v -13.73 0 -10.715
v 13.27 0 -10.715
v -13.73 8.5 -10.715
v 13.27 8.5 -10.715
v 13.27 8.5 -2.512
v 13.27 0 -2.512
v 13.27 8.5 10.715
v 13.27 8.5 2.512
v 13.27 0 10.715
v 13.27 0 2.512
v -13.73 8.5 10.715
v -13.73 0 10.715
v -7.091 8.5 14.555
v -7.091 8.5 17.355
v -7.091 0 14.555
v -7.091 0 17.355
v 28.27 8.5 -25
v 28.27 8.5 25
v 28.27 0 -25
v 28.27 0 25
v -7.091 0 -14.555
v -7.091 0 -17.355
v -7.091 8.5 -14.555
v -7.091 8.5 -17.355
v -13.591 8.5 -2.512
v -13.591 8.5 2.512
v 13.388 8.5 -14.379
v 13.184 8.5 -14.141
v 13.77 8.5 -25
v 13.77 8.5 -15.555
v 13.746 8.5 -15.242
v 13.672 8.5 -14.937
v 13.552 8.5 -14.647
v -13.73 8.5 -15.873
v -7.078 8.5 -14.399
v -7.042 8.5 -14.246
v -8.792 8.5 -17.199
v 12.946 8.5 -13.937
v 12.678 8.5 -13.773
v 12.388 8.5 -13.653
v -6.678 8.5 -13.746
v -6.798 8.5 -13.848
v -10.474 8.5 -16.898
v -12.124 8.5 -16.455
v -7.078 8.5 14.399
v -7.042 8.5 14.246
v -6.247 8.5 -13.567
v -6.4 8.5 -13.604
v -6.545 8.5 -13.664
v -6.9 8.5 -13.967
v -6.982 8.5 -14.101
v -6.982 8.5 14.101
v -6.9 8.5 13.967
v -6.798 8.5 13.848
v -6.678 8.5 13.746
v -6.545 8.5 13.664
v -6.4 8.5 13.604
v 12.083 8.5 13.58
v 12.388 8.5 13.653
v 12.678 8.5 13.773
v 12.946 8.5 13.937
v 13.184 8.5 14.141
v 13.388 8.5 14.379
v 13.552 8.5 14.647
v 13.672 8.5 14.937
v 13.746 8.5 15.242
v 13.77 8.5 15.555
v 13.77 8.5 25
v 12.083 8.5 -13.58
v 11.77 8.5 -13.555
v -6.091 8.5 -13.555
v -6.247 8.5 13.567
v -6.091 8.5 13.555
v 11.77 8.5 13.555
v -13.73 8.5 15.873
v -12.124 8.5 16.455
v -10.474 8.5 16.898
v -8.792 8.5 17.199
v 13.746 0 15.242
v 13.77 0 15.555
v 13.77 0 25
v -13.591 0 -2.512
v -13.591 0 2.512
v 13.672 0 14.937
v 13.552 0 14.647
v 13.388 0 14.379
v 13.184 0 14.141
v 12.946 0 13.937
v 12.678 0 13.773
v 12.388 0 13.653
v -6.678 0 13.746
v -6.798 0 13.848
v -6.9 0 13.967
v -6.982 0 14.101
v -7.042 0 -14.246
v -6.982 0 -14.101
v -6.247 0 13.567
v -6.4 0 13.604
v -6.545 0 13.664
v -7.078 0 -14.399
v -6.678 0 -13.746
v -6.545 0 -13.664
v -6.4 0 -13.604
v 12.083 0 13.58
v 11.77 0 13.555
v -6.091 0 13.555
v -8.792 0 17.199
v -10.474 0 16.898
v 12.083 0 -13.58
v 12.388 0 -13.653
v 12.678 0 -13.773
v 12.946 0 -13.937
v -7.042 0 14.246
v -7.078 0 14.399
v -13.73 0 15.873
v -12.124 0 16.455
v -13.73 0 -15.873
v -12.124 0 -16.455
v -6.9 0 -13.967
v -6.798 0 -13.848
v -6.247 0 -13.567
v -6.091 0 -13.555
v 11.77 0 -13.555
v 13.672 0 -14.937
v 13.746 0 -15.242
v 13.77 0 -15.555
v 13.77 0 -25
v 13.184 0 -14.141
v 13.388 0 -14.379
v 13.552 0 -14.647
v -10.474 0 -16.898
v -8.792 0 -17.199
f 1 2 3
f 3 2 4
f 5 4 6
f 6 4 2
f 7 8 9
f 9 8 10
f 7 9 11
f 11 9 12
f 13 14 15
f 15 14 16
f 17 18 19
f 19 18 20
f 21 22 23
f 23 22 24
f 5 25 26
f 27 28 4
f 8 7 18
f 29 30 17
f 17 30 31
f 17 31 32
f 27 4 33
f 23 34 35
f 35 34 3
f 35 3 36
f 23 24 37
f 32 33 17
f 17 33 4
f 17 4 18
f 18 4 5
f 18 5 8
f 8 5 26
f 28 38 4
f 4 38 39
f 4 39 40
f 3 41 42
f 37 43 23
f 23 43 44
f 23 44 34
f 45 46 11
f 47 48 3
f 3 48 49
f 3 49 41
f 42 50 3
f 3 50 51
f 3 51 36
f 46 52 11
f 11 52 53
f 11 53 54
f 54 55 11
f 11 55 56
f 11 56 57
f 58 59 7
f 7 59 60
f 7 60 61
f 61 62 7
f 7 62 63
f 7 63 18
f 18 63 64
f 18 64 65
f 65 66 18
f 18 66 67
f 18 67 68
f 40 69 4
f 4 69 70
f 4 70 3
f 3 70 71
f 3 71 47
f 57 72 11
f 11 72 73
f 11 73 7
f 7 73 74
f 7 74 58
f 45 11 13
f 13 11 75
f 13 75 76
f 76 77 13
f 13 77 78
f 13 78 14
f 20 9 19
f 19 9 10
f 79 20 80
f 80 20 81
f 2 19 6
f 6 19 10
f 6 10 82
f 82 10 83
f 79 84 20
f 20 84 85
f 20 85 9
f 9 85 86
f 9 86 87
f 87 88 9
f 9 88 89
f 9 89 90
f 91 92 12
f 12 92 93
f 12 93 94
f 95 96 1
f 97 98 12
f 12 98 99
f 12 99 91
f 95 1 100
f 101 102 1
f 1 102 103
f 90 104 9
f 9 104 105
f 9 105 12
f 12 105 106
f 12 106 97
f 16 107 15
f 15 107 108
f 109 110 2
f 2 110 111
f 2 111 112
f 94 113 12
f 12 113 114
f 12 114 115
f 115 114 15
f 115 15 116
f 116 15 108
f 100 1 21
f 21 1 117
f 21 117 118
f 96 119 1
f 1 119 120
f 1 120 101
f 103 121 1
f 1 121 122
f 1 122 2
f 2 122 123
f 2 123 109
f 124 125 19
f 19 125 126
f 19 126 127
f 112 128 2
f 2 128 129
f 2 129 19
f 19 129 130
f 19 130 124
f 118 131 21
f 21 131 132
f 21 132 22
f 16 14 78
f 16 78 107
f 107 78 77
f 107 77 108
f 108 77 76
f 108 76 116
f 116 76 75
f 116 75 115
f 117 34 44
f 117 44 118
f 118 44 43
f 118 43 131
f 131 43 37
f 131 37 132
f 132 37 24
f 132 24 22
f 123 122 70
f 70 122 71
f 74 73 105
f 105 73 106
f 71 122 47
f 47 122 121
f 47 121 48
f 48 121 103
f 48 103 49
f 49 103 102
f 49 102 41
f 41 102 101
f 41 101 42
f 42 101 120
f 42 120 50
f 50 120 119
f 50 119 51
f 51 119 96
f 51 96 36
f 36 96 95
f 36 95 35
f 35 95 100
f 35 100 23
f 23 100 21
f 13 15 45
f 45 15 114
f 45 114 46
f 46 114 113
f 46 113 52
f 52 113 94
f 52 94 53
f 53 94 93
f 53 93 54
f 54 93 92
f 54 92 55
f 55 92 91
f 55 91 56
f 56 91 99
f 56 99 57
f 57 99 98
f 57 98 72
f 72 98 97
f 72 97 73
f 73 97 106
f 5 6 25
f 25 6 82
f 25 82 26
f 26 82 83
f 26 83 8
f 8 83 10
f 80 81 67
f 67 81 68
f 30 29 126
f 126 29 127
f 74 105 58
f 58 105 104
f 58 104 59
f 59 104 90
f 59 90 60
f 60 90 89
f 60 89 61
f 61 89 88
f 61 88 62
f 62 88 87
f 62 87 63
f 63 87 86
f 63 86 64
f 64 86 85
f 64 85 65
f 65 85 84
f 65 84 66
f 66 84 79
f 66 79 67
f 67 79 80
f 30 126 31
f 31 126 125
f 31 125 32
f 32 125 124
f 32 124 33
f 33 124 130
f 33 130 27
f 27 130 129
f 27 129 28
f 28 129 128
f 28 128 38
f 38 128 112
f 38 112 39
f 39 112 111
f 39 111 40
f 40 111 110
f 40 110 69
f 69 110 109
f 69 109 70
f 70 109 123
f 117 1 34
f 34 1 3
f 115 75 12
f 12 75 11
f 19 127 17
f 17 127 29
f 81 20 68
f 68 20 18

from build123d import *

# Parameters (mm, degrees)
SALIENTE_EXTRUIR1_DEPTH = 8.5
REDONDEO1_R             = 2
CORTAR_EXTRUIR1_START   = -10
CORTAR_EXTRUIR1_DEPTH   = 10
CROQUIS3_W              = 2
CROQUIS3_H              = 37.641018094
CORTAR_EXTRUIR2_DEPTH   = 10
CROQUIS4_W              = 20.360825868
CROQUIS4_H              = 3.8
CORTAR_EXTRUIR3_DEPTH   = 10
REDONDEO2_R             = 1
REDONDEO3_R             = 2
CORTAR_EXTRUIR4_DEPTH   = 10
CORTAR_EXTRUIR5_DEPTH   = 10
REDONDEO4_R             = 2
CROQUIS9_W              = 0.360825868
CROQUIS9_H              = 41.677341087
CORTAR_EXTRUIR6_DEPTH   = 10
CROQUIS10_W             = 14.5
CROQUIS10_H             = 0.285488866
SALIENTE_EXTRUIR2_DEPTH = 8.5


with BuildPart() as part:
    # Croquis1 → Saliente-Extruir1 (new body)
    with BuildSketch(Plane(origin=(0, 0, 0), x_dir=(1, 0, 0), z_dir=(0, 1, 0))):
        with BuildLine():
            Line((13.270197773, -14.714511134), (13.270197773, -24.714511134))
            Line((13.270197773, -24.714511134), (28.270197773, -24.714511134))
            Line((28.270197773, -24.714511134), (28.270197773, 24.714511134))
            Line((28.270197773, 24.714511134), (13.270197773, 24.714511134))
            Line((13.270197773, 24.714511134), (13.270197773, 14.714511134))
            Line((13.270197773, 14.714511134), (-6.590628095, 14.714511134))
            ThreePointArc((-6.590628095, 14.714511134), (-6.944181486, 14.860957744), (-7.090628095, 15.214511134))
            Line((-7.090628095, 15.214511134), (-7.090628095, 18.995462915))
            ThreePointArc((-7.090628095, 18.995462915), (-7.383521314, 19.702569696), (-8.090628095, 19.995462915))
            ThreePointArc((-8.090628095, 19.995462915), (-12.706365951, 18.287755027), (-16.090628095, 14.714511134))
            Line((-16.090628095, 14.714511134), (-16.090628095, 10.714511134))
            Line((-16.090628095, 10.714511134), (13.270197773, 10.714511134))
            Line((13.270197773, 10.714511134), (13.270197773, 8.214511134))
            Line((13.270197773, 8.214511134), (13.270197773, 5.212235466))
            Line((13.270197773, 5.212235466), (13.270197773, 5.012235466))
            Line((13.270197773, 5.012235466), (13.270197773, 3.012235466))
            Line((13.270197773, 3.012235466), (-16.090628095, 3.012235466))
            Line((-16.090628095, 3.012235466), (-16.090628095, -3.012235466))
            Line((-16.090628095, -3.012235466), (13.270197773, -3.012235466))
            Line((13.270197773, -3.012235466), (13.270197773, -5.012235466))
            Line((13.270197773, -5.012235466), (13.270197773, -5.212235466))
            Line((13.270197773, -5.212235466), (13.270197773, -8.214511134))
            Line((13.270197773, -8.214511134), (13.270197773, -10.714511134))
            Line((13.270197773, -10.714511134), (-16.090628095, -10.714511134))
            Line((-16.090628095, -10.714511134), (-16.090628095, -14.714511134))
            ThreePointArc((-16.090628095, -14.714511134), (-12.706365951, -18.287755027), (-8.090628095, -19.995462915))
            ThreePointArc((-8.090628095, -19.995462915), (-7.383521314, -19.702569696), (-7.090628095, -18.995462915))
            Line((-7.090628095, -18.995462915), (-7.090628095, -14.714511134))
            Line((-7.090628095, -14.714511134), (13.270197773, -14.714511134))
        make_face()
    extrude(amount=SALIENTE_EXTRUIR1_DEPTH)

    # Redondeo1
    redondeo1_edges = [part.edges().sort_by_distance(p)[0] for p in [
        (13.270197773, 4.25, -14.714511134),
        (13.270197773, 4.25, 14.714511134),
    ]]
    fillet(redondeo1_edges, radius=REDONDEO1_R)

    # Croquis2 → Cortar-Extruir1 (cut)
    with BuildSketch(Plane(origin=(0, 8.5, 0), x_dir=(1, 0, 0), z_dir=(0, 1, 0)).offset(CORTAR_EXTRUIR1_START)):
        with BuildLine():
            Line((-7.090628095, 18.995462915), (-7.090628095, 17.354987025))
            ThreePointArc((-7.090628095, 17.354987025), (-11.747603416, 16.569795769), (-16.090628095, 14.714511134))
            ThreePointArc((-16.090628095, 14.714511134), (-12.706365951, 18.287755027), (-8.090628095, 19.995462915))
            ThreePointArc((-8.090628095, 19.995462915), (-7.383521314, 19.702569696), (-7.090628095, 18.995462915))
        make_face()
        with BuildLine():
            Line((-7.090628095, -18.995462915), (-7.090628095, -17.354987025))
            ThreePointArc((-7.090628095, -17.354987025), (-11.747603416, -16.569795769), (-16.090628095, -14.714511134))
            ThreePointArc((-16.090628095, -14.714511134), (-12.706365951, -18.287755027), (-8.090628095, -19.995462915))
            ThreePointArc((-8.090628095, -19.995462915), (-7.383521314, -19.702569696), (-7.090628095, -18.995462915))
        make_face()
    extrude(amount=CORTAR_EXTRUIR1_DEPTH, mode=Mode.SUBTRACT)

    # Croquis3 → Cortar-Extruir2 (cut)
    with BuildSketch(Plane(origin=(0, 8.5, 0), x_dir=(1, 0, 0), z_dir=(0, 1, 0))):
        with Locations((-15.090628095, -0.838537532)):
            Rectangle(CROQUIS3_W, CROQUIS3_H)
    extrude(amount=-CORTAR_EXTRUIR2_DEPTH, mode=Mode.SUBTRACT)

    # Croquis4 → Cortar-Extruir3 (cut)
    with BuildSketch(Plane(origin=(0, 8.5, 0), x_dir=(1, 0, 0), z_dir=(0, 1, 0))):
        with Locations((3.089784839, 15.454987025)):
            Rectangle(CROQUIS4_W, CROQUIS4_H)
        with Locations((3.089784839, -15.454987025)):
            Rectangle(CROQUIS4_W, CROQUIS4_H)
    extrude(amount=-CORTAR_EXTRUIR3_DEPTH, mode=Mode.SUBTRACT)

    # Redondeo2
    redondeo2_edges = [part.edges().sort_by_distance(p)[0] for p in [
        (-7.090628095, 4.25, -13.554987025),
        (-7.090628095, 4.25, 13.554987025),
    ]]
    fillet(redondeo2_edges, radius=REDONDEO2_R)

    # Redondeo3
    redondeo3_edges = [part.edges().sort_by_distance(p)[0] for p in [
        (13.270197773, 4.25, -13.554987025),
        (13.270197773, 4.25, 13.554987025),
    ]]
    fillet(redondeo3_edges, radius=REDONDEO3_R)

    # Croquis6 → Cortar-Extruir4 (cut)
    with BuildSketch(Plane(origin=(0, 8.5, 0), x_dir=(1, 0, 0), z_dir=(0, 1, 0))):
        Polygon((-14.090628095, -3.012235466), (13.270197773, -3.012235466), (13.270197773, -2.512235466), (-13.590628095, -2.512235466), (-13.590628095, 2.512235466), (13.270197773, 2.512235466), (13.270197773, 3.012235466), (-14.090628095, 3.012235466), align=None)
    extrude(amount=-CORTAR_EXTRUIR4_DEPTH, mode=Mode.SUBTRACT)

    # Croquis7 → Cortar-Extruir5 (cut)
    with BuildSketch(Plane(origin=(0, 8.5, 0), x_dir=(1, 0, 0), z_dir=(0, 1, 0))):
        Polygon((13.270197773, 24.714511134), (13.770197773, 24.714511134), (13.770197773, 13.554987025), (13.270197773, 13.554987025), (10.850472816, 13.554987025), (10.850472816, 24.714511134), align=None)
        Polygon((13.270197773, -24.714511134), (10.850472816, -24.714511134), (10.850472816, -13.554987025), (13.270197773, -13.554987025), (13.770197773, -13.554987025), (13.770197773, -24.714511134), align=None)
    extrude(amount=-CORTAR_EXTRUIR5_DEPTH, mode=Mode.SUBTRACT)

    # Redondeo4
    redondeo4_edges = [part.edges().sort_by_distance(p)[0] for p in [
        (13.770197773, 4.25, -13.554987025),
        (13.770197773, 4.25, 13.554987025),
    ]]
    fillet(redondeo4_edges, radius=REDONDEO4_R)

    # Croquis9 → Cortar-Extruir6 (cut)
    with BuildSketch(Plane(origin=(0, 8.5, 0), x_dir=(1, 0, 0), z_dir=(0, 1, 0))):
        with Locations((-13.910215161, 4.161329456)):
            Rectangle(CROQUIS9_W, CROQUIS9_H)
    extrude(amount=-CORTAR_EXTRUIR6_DEPTH, mode=Mode.SUBTRACT)

    # Croquis10 → Saliente-Extruir2 (add)
    with BuildSketch(Plane(origin=(0, 8.5, 0), x_dir=(1, 0, 0), z_dir=(0, 1, 0))):
        with Locations((21.020197773, 24.857255567)):
            Rectangle(CROQUIS10_W, CROQUIS10_H)
        with Locations((21.020197773, -24.857255567)):
            Rectangle(CROQUIS10_W, CROQUIS10_H)
    extrude(amount=-SALIENTE_EXTRUIR2_DEPTH)


solid = part.part
